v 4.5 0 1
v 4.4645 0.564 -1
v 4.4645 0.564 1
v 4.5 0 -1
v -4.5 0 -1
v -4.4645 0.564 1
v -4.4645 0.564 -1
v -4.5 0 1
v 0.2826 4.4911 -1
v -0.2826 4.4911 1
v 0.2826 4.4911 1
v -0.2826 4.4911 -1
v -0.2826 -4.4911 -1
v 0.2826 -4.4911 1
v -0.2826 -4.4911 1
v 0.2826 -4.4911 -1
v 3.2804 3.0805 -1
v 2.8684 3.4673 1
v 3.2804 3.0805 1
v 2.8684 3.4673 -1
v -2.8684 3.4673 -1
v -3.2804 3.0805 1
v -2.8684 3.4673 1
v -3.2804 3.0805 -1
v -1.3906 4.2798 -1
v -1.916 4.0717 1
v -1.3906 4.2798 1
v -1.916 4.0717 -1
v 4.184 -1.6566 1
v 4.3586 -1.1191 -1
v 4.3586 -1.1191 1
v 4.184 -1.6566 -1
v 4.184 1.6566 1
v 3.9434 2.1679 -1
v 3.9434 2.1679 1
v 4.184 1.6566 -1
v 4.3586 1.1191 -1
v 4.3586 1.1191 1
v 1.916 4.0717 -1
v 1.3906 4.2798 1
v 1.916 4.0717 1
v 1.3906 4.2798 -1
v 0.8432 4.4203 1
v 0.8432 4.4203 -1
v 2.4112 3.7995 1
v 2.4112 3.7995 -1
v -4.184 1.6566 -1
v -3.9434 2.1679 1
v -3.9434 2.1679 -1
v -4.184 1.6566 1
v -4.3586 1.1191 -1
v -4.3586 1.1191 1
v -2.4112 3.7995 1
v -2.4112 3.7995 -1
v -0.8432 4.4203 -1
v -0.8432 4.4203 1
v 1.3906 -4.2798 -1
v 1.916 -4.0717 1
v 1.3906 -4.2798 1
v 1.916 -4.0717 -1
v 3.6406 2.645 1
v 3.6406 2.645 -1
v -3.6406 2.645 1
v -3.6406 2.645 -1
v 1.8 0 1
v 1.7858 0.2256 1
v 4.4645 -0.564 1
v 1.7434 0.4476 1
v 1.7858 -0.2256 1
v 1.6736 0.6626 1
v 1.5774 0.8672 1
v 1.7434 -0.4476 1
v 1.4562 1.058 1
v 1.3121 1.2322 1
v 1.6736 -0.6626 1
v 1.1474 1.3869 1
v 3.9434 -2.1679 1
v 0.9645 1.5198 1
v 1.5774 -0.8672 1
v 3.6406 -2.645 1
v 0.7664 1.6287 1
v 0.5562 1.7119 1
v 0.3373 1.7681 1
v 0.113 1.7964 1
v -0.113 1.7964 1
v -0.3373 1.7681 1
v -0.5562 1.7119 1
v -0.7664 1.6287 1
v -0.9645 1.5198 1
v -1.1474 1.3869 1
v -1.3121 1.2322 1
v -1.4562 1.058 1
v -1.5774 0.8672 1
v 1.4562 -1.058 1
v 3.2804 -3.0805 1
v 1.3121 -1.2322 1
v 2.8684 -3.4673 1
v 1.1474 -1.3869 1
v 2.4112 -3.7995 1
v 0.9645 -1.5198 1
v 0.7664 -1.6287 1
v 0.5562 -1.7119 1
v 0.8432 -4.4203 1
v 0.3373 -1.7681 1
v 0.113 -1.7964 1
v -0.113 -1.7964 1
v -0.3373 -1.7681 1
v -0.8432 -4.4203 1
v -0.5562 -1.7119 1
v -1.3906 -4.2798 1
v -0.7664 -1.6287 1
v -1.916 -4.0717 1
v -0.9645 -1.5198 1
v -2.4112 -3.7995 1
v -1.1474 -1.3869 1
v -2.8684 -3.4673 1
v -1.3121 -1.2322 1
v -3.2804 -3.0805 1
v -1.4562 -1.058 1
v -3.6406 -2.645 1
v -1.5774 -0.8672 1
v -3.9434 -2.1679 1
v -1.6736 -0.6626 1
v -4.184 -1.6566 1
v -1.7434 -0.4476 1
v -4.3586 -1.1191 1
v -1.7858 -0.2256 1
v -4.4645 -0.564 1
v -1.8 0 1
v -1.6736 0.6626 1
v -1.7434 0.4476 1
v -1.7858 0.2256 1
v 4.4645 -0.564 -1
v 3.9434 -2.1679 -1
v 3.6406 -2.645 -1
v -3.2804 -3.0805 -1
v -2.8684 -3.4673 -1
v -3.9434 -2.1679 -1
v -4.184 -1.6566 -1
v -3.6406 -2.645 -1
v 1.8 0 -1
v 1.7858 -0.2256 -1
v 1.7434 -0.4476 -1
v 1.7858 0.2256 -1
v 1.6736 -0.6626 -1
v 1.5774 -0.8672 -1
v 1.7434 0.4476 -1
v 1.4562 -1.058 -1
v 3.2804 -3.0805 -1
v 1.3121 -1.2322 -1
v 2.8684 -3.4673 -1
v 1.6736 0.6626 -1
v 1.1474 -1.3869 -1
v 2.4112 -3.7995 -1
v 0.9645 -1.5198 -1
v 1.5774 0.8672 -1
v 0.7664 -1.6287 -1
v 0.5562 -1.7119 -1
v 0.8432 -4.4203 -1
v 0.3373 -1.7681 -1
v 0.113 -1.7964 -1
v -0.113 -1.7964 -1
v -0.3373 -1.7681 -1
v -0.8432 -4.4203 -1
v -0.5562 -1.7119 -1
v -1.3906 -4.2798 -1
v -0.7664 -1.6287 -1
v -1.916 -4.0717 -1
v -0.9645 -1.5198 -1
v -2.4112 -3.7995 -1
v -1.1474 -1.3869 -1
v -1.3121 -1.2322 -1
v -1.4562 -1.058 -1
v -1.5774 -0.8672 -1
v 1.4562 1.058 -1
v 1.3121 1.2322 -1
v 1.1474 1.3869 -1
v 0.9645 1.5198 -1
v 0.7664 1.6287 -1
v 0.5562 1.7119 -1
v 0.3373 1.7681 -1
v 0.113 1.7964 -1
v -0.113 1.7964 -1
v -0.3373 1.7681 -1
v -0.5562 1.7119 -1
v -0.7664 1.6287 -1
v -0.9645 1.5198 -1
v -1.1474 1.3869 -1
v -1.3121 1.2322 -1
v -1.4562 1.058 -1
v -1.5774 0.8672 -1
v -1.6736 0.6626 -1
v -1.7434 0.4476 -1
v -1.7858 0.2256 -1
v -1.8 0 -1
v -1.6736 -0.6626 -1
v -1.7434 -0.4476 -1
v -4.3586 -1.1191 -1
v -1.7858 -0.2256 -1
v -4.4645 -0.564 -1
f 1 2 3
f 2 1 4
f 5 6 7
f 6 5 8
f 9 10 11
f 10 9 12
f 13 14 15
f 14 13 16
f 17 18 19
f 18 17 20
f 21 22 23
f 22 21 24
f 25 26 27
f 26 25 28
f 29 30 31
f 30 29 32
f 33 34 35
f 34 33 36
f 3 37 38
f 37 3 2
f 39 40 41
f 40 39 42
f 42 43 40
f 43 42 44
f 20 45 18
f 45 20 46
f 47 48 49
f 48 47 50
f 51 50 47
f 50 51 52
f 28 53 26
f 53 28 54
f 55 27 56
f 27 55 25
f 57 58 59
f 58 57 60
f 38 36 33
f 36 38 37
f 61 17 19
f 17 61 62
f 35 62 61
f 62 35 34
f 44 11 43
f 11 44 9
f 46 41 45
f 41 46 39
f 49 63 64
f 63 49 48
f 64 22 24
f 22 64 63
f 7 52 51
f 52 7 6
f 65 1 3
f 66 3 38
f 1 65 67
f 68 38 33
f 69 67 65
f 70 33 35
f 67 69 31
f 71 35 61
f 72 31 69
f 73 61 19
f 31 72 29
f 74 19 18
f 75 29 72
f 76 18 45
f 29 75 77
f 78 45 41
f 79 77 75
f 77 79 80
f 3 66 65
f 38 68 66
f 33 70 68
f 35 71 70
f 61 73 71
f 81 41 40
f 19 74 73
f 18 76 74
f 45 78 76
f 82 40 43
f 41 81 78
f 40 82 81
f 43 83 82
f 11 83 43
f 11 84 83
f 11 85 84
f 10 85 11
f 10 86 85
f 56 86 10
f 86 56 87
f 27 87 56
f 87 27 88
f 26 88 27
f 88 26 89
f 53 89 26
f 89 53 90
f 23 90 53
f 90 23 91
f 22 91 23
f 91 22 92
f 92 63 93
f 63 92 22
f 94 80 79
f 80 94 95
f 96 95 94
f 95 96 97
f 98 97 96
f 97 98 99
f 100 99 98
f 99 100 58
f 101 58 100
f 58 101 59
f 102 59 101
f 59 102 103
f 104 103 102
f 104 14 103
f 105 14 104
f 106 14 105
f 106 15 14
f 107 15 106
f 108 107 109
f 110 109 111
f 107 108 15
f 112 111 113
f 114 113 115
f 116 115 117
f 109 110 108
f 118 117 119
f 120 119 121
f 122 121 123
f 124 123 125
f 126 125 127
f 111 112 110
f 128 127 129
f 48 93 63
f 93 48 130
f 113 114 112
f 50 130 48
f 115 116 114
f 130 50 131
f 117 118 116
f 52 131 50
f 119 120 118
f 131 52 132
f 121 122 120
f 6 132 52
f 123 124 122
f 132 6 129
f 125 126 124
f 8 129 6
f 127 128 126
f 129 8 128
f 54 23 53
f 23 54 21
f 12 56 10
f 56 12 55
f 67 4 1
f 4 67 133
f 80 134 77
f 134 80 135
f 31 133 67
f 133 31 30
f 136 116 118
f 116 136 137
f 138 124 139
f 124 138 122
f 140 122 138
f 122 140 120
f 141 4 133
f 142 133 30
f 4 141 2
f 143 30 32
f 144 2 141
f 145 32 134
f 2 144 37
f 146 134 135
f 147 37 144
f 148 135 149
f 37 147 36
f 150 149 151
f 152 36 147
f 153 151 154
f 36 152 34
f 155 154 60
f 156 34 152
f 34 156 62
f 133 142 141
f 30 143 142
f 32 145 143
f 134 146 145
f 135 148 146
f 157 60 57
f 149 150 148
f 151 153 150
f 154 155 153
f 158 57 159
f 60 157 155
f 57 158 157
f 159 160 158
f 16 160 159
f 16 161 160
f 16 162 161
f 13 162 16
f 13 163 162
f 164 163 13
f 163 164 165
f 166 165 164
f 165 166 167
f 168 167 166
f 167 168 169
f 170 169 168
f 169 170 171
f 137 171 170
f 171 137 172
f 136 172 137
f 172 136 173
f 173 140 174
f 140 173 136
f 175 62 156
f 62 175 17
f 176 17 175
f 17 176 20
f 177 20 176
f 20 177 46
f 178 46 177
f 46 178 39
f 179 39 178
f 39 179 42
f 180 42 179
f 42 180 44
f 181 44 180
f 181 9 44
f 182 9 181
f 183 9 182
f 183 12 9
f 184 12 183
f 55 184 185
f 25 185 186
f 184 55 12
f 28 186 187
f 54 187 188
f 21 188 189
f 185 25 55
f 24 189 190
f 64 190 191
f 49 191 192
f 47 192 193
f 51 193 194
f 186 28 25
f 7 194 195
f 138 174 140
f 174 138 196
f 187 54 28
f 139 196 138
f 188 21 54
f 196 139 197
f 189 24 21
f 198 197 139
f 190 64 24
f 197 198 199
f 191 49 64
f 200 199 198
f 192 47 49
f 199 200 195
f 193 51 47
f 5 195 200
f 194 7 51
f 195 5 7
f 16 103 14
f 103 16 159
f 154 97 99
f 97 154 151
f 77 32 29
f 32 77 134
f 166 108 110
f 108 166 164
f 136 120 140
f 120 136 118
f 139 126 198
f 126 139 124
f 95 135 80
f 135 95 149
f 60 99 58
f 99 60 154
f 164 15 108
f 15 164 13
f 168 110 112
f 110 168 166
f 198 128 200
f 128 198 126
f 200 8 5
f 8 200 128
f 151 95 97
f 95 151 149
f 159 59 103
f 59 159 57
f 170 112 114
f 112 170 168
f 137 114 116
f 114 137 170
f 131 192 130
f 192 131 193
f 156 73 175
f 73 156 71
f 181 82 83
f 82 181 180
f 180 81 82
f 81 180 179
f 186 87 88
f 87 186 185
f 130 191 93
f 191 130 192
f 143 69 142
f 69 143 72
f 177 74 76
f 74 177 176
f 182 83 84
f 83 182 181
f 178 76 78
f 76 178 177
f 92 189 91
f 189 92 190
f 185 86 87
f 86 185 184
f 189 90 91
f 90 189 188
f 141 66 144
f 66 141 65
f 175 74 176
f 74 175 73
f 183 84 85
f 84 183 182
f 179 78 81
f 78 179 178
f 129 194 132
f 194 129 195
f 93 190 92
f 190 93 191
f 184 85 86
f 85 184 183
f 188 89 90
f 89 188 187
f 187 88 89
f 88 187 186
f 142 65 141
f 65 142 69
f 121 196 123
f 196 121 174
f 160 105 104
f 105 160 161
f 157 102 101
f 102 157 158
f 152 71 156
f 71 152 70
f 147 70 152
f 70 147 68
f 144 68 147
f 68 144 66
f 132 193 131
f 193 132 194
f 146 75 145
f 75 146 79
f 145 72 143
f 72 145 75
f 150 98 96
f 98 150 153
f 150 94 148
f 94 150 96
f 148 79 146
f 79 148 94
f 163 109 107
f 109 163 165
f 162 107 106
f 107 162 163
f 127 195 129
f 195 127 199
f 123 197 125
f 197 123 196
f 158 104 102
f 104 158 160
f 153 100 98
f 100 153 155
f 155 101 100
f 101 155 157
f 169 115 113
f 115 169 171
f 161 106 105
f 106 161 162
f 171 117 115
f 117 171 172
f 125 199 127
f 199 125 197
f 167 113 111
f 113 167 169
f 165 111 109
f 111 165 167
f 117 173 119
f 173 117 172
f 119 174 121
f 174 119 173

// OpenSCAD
$fn = 50;


difference() {
	union() {
		translate(v = [0, 0, -1.0000000000]) {
			cylinder(h = 2, r = 4.5000000000);
		}
	}
	union() {
		translate(v = [0, 0, -100.0000000000]) {
			cylinder(h = 200, r = 1.8000000000);
		}
	}
}
